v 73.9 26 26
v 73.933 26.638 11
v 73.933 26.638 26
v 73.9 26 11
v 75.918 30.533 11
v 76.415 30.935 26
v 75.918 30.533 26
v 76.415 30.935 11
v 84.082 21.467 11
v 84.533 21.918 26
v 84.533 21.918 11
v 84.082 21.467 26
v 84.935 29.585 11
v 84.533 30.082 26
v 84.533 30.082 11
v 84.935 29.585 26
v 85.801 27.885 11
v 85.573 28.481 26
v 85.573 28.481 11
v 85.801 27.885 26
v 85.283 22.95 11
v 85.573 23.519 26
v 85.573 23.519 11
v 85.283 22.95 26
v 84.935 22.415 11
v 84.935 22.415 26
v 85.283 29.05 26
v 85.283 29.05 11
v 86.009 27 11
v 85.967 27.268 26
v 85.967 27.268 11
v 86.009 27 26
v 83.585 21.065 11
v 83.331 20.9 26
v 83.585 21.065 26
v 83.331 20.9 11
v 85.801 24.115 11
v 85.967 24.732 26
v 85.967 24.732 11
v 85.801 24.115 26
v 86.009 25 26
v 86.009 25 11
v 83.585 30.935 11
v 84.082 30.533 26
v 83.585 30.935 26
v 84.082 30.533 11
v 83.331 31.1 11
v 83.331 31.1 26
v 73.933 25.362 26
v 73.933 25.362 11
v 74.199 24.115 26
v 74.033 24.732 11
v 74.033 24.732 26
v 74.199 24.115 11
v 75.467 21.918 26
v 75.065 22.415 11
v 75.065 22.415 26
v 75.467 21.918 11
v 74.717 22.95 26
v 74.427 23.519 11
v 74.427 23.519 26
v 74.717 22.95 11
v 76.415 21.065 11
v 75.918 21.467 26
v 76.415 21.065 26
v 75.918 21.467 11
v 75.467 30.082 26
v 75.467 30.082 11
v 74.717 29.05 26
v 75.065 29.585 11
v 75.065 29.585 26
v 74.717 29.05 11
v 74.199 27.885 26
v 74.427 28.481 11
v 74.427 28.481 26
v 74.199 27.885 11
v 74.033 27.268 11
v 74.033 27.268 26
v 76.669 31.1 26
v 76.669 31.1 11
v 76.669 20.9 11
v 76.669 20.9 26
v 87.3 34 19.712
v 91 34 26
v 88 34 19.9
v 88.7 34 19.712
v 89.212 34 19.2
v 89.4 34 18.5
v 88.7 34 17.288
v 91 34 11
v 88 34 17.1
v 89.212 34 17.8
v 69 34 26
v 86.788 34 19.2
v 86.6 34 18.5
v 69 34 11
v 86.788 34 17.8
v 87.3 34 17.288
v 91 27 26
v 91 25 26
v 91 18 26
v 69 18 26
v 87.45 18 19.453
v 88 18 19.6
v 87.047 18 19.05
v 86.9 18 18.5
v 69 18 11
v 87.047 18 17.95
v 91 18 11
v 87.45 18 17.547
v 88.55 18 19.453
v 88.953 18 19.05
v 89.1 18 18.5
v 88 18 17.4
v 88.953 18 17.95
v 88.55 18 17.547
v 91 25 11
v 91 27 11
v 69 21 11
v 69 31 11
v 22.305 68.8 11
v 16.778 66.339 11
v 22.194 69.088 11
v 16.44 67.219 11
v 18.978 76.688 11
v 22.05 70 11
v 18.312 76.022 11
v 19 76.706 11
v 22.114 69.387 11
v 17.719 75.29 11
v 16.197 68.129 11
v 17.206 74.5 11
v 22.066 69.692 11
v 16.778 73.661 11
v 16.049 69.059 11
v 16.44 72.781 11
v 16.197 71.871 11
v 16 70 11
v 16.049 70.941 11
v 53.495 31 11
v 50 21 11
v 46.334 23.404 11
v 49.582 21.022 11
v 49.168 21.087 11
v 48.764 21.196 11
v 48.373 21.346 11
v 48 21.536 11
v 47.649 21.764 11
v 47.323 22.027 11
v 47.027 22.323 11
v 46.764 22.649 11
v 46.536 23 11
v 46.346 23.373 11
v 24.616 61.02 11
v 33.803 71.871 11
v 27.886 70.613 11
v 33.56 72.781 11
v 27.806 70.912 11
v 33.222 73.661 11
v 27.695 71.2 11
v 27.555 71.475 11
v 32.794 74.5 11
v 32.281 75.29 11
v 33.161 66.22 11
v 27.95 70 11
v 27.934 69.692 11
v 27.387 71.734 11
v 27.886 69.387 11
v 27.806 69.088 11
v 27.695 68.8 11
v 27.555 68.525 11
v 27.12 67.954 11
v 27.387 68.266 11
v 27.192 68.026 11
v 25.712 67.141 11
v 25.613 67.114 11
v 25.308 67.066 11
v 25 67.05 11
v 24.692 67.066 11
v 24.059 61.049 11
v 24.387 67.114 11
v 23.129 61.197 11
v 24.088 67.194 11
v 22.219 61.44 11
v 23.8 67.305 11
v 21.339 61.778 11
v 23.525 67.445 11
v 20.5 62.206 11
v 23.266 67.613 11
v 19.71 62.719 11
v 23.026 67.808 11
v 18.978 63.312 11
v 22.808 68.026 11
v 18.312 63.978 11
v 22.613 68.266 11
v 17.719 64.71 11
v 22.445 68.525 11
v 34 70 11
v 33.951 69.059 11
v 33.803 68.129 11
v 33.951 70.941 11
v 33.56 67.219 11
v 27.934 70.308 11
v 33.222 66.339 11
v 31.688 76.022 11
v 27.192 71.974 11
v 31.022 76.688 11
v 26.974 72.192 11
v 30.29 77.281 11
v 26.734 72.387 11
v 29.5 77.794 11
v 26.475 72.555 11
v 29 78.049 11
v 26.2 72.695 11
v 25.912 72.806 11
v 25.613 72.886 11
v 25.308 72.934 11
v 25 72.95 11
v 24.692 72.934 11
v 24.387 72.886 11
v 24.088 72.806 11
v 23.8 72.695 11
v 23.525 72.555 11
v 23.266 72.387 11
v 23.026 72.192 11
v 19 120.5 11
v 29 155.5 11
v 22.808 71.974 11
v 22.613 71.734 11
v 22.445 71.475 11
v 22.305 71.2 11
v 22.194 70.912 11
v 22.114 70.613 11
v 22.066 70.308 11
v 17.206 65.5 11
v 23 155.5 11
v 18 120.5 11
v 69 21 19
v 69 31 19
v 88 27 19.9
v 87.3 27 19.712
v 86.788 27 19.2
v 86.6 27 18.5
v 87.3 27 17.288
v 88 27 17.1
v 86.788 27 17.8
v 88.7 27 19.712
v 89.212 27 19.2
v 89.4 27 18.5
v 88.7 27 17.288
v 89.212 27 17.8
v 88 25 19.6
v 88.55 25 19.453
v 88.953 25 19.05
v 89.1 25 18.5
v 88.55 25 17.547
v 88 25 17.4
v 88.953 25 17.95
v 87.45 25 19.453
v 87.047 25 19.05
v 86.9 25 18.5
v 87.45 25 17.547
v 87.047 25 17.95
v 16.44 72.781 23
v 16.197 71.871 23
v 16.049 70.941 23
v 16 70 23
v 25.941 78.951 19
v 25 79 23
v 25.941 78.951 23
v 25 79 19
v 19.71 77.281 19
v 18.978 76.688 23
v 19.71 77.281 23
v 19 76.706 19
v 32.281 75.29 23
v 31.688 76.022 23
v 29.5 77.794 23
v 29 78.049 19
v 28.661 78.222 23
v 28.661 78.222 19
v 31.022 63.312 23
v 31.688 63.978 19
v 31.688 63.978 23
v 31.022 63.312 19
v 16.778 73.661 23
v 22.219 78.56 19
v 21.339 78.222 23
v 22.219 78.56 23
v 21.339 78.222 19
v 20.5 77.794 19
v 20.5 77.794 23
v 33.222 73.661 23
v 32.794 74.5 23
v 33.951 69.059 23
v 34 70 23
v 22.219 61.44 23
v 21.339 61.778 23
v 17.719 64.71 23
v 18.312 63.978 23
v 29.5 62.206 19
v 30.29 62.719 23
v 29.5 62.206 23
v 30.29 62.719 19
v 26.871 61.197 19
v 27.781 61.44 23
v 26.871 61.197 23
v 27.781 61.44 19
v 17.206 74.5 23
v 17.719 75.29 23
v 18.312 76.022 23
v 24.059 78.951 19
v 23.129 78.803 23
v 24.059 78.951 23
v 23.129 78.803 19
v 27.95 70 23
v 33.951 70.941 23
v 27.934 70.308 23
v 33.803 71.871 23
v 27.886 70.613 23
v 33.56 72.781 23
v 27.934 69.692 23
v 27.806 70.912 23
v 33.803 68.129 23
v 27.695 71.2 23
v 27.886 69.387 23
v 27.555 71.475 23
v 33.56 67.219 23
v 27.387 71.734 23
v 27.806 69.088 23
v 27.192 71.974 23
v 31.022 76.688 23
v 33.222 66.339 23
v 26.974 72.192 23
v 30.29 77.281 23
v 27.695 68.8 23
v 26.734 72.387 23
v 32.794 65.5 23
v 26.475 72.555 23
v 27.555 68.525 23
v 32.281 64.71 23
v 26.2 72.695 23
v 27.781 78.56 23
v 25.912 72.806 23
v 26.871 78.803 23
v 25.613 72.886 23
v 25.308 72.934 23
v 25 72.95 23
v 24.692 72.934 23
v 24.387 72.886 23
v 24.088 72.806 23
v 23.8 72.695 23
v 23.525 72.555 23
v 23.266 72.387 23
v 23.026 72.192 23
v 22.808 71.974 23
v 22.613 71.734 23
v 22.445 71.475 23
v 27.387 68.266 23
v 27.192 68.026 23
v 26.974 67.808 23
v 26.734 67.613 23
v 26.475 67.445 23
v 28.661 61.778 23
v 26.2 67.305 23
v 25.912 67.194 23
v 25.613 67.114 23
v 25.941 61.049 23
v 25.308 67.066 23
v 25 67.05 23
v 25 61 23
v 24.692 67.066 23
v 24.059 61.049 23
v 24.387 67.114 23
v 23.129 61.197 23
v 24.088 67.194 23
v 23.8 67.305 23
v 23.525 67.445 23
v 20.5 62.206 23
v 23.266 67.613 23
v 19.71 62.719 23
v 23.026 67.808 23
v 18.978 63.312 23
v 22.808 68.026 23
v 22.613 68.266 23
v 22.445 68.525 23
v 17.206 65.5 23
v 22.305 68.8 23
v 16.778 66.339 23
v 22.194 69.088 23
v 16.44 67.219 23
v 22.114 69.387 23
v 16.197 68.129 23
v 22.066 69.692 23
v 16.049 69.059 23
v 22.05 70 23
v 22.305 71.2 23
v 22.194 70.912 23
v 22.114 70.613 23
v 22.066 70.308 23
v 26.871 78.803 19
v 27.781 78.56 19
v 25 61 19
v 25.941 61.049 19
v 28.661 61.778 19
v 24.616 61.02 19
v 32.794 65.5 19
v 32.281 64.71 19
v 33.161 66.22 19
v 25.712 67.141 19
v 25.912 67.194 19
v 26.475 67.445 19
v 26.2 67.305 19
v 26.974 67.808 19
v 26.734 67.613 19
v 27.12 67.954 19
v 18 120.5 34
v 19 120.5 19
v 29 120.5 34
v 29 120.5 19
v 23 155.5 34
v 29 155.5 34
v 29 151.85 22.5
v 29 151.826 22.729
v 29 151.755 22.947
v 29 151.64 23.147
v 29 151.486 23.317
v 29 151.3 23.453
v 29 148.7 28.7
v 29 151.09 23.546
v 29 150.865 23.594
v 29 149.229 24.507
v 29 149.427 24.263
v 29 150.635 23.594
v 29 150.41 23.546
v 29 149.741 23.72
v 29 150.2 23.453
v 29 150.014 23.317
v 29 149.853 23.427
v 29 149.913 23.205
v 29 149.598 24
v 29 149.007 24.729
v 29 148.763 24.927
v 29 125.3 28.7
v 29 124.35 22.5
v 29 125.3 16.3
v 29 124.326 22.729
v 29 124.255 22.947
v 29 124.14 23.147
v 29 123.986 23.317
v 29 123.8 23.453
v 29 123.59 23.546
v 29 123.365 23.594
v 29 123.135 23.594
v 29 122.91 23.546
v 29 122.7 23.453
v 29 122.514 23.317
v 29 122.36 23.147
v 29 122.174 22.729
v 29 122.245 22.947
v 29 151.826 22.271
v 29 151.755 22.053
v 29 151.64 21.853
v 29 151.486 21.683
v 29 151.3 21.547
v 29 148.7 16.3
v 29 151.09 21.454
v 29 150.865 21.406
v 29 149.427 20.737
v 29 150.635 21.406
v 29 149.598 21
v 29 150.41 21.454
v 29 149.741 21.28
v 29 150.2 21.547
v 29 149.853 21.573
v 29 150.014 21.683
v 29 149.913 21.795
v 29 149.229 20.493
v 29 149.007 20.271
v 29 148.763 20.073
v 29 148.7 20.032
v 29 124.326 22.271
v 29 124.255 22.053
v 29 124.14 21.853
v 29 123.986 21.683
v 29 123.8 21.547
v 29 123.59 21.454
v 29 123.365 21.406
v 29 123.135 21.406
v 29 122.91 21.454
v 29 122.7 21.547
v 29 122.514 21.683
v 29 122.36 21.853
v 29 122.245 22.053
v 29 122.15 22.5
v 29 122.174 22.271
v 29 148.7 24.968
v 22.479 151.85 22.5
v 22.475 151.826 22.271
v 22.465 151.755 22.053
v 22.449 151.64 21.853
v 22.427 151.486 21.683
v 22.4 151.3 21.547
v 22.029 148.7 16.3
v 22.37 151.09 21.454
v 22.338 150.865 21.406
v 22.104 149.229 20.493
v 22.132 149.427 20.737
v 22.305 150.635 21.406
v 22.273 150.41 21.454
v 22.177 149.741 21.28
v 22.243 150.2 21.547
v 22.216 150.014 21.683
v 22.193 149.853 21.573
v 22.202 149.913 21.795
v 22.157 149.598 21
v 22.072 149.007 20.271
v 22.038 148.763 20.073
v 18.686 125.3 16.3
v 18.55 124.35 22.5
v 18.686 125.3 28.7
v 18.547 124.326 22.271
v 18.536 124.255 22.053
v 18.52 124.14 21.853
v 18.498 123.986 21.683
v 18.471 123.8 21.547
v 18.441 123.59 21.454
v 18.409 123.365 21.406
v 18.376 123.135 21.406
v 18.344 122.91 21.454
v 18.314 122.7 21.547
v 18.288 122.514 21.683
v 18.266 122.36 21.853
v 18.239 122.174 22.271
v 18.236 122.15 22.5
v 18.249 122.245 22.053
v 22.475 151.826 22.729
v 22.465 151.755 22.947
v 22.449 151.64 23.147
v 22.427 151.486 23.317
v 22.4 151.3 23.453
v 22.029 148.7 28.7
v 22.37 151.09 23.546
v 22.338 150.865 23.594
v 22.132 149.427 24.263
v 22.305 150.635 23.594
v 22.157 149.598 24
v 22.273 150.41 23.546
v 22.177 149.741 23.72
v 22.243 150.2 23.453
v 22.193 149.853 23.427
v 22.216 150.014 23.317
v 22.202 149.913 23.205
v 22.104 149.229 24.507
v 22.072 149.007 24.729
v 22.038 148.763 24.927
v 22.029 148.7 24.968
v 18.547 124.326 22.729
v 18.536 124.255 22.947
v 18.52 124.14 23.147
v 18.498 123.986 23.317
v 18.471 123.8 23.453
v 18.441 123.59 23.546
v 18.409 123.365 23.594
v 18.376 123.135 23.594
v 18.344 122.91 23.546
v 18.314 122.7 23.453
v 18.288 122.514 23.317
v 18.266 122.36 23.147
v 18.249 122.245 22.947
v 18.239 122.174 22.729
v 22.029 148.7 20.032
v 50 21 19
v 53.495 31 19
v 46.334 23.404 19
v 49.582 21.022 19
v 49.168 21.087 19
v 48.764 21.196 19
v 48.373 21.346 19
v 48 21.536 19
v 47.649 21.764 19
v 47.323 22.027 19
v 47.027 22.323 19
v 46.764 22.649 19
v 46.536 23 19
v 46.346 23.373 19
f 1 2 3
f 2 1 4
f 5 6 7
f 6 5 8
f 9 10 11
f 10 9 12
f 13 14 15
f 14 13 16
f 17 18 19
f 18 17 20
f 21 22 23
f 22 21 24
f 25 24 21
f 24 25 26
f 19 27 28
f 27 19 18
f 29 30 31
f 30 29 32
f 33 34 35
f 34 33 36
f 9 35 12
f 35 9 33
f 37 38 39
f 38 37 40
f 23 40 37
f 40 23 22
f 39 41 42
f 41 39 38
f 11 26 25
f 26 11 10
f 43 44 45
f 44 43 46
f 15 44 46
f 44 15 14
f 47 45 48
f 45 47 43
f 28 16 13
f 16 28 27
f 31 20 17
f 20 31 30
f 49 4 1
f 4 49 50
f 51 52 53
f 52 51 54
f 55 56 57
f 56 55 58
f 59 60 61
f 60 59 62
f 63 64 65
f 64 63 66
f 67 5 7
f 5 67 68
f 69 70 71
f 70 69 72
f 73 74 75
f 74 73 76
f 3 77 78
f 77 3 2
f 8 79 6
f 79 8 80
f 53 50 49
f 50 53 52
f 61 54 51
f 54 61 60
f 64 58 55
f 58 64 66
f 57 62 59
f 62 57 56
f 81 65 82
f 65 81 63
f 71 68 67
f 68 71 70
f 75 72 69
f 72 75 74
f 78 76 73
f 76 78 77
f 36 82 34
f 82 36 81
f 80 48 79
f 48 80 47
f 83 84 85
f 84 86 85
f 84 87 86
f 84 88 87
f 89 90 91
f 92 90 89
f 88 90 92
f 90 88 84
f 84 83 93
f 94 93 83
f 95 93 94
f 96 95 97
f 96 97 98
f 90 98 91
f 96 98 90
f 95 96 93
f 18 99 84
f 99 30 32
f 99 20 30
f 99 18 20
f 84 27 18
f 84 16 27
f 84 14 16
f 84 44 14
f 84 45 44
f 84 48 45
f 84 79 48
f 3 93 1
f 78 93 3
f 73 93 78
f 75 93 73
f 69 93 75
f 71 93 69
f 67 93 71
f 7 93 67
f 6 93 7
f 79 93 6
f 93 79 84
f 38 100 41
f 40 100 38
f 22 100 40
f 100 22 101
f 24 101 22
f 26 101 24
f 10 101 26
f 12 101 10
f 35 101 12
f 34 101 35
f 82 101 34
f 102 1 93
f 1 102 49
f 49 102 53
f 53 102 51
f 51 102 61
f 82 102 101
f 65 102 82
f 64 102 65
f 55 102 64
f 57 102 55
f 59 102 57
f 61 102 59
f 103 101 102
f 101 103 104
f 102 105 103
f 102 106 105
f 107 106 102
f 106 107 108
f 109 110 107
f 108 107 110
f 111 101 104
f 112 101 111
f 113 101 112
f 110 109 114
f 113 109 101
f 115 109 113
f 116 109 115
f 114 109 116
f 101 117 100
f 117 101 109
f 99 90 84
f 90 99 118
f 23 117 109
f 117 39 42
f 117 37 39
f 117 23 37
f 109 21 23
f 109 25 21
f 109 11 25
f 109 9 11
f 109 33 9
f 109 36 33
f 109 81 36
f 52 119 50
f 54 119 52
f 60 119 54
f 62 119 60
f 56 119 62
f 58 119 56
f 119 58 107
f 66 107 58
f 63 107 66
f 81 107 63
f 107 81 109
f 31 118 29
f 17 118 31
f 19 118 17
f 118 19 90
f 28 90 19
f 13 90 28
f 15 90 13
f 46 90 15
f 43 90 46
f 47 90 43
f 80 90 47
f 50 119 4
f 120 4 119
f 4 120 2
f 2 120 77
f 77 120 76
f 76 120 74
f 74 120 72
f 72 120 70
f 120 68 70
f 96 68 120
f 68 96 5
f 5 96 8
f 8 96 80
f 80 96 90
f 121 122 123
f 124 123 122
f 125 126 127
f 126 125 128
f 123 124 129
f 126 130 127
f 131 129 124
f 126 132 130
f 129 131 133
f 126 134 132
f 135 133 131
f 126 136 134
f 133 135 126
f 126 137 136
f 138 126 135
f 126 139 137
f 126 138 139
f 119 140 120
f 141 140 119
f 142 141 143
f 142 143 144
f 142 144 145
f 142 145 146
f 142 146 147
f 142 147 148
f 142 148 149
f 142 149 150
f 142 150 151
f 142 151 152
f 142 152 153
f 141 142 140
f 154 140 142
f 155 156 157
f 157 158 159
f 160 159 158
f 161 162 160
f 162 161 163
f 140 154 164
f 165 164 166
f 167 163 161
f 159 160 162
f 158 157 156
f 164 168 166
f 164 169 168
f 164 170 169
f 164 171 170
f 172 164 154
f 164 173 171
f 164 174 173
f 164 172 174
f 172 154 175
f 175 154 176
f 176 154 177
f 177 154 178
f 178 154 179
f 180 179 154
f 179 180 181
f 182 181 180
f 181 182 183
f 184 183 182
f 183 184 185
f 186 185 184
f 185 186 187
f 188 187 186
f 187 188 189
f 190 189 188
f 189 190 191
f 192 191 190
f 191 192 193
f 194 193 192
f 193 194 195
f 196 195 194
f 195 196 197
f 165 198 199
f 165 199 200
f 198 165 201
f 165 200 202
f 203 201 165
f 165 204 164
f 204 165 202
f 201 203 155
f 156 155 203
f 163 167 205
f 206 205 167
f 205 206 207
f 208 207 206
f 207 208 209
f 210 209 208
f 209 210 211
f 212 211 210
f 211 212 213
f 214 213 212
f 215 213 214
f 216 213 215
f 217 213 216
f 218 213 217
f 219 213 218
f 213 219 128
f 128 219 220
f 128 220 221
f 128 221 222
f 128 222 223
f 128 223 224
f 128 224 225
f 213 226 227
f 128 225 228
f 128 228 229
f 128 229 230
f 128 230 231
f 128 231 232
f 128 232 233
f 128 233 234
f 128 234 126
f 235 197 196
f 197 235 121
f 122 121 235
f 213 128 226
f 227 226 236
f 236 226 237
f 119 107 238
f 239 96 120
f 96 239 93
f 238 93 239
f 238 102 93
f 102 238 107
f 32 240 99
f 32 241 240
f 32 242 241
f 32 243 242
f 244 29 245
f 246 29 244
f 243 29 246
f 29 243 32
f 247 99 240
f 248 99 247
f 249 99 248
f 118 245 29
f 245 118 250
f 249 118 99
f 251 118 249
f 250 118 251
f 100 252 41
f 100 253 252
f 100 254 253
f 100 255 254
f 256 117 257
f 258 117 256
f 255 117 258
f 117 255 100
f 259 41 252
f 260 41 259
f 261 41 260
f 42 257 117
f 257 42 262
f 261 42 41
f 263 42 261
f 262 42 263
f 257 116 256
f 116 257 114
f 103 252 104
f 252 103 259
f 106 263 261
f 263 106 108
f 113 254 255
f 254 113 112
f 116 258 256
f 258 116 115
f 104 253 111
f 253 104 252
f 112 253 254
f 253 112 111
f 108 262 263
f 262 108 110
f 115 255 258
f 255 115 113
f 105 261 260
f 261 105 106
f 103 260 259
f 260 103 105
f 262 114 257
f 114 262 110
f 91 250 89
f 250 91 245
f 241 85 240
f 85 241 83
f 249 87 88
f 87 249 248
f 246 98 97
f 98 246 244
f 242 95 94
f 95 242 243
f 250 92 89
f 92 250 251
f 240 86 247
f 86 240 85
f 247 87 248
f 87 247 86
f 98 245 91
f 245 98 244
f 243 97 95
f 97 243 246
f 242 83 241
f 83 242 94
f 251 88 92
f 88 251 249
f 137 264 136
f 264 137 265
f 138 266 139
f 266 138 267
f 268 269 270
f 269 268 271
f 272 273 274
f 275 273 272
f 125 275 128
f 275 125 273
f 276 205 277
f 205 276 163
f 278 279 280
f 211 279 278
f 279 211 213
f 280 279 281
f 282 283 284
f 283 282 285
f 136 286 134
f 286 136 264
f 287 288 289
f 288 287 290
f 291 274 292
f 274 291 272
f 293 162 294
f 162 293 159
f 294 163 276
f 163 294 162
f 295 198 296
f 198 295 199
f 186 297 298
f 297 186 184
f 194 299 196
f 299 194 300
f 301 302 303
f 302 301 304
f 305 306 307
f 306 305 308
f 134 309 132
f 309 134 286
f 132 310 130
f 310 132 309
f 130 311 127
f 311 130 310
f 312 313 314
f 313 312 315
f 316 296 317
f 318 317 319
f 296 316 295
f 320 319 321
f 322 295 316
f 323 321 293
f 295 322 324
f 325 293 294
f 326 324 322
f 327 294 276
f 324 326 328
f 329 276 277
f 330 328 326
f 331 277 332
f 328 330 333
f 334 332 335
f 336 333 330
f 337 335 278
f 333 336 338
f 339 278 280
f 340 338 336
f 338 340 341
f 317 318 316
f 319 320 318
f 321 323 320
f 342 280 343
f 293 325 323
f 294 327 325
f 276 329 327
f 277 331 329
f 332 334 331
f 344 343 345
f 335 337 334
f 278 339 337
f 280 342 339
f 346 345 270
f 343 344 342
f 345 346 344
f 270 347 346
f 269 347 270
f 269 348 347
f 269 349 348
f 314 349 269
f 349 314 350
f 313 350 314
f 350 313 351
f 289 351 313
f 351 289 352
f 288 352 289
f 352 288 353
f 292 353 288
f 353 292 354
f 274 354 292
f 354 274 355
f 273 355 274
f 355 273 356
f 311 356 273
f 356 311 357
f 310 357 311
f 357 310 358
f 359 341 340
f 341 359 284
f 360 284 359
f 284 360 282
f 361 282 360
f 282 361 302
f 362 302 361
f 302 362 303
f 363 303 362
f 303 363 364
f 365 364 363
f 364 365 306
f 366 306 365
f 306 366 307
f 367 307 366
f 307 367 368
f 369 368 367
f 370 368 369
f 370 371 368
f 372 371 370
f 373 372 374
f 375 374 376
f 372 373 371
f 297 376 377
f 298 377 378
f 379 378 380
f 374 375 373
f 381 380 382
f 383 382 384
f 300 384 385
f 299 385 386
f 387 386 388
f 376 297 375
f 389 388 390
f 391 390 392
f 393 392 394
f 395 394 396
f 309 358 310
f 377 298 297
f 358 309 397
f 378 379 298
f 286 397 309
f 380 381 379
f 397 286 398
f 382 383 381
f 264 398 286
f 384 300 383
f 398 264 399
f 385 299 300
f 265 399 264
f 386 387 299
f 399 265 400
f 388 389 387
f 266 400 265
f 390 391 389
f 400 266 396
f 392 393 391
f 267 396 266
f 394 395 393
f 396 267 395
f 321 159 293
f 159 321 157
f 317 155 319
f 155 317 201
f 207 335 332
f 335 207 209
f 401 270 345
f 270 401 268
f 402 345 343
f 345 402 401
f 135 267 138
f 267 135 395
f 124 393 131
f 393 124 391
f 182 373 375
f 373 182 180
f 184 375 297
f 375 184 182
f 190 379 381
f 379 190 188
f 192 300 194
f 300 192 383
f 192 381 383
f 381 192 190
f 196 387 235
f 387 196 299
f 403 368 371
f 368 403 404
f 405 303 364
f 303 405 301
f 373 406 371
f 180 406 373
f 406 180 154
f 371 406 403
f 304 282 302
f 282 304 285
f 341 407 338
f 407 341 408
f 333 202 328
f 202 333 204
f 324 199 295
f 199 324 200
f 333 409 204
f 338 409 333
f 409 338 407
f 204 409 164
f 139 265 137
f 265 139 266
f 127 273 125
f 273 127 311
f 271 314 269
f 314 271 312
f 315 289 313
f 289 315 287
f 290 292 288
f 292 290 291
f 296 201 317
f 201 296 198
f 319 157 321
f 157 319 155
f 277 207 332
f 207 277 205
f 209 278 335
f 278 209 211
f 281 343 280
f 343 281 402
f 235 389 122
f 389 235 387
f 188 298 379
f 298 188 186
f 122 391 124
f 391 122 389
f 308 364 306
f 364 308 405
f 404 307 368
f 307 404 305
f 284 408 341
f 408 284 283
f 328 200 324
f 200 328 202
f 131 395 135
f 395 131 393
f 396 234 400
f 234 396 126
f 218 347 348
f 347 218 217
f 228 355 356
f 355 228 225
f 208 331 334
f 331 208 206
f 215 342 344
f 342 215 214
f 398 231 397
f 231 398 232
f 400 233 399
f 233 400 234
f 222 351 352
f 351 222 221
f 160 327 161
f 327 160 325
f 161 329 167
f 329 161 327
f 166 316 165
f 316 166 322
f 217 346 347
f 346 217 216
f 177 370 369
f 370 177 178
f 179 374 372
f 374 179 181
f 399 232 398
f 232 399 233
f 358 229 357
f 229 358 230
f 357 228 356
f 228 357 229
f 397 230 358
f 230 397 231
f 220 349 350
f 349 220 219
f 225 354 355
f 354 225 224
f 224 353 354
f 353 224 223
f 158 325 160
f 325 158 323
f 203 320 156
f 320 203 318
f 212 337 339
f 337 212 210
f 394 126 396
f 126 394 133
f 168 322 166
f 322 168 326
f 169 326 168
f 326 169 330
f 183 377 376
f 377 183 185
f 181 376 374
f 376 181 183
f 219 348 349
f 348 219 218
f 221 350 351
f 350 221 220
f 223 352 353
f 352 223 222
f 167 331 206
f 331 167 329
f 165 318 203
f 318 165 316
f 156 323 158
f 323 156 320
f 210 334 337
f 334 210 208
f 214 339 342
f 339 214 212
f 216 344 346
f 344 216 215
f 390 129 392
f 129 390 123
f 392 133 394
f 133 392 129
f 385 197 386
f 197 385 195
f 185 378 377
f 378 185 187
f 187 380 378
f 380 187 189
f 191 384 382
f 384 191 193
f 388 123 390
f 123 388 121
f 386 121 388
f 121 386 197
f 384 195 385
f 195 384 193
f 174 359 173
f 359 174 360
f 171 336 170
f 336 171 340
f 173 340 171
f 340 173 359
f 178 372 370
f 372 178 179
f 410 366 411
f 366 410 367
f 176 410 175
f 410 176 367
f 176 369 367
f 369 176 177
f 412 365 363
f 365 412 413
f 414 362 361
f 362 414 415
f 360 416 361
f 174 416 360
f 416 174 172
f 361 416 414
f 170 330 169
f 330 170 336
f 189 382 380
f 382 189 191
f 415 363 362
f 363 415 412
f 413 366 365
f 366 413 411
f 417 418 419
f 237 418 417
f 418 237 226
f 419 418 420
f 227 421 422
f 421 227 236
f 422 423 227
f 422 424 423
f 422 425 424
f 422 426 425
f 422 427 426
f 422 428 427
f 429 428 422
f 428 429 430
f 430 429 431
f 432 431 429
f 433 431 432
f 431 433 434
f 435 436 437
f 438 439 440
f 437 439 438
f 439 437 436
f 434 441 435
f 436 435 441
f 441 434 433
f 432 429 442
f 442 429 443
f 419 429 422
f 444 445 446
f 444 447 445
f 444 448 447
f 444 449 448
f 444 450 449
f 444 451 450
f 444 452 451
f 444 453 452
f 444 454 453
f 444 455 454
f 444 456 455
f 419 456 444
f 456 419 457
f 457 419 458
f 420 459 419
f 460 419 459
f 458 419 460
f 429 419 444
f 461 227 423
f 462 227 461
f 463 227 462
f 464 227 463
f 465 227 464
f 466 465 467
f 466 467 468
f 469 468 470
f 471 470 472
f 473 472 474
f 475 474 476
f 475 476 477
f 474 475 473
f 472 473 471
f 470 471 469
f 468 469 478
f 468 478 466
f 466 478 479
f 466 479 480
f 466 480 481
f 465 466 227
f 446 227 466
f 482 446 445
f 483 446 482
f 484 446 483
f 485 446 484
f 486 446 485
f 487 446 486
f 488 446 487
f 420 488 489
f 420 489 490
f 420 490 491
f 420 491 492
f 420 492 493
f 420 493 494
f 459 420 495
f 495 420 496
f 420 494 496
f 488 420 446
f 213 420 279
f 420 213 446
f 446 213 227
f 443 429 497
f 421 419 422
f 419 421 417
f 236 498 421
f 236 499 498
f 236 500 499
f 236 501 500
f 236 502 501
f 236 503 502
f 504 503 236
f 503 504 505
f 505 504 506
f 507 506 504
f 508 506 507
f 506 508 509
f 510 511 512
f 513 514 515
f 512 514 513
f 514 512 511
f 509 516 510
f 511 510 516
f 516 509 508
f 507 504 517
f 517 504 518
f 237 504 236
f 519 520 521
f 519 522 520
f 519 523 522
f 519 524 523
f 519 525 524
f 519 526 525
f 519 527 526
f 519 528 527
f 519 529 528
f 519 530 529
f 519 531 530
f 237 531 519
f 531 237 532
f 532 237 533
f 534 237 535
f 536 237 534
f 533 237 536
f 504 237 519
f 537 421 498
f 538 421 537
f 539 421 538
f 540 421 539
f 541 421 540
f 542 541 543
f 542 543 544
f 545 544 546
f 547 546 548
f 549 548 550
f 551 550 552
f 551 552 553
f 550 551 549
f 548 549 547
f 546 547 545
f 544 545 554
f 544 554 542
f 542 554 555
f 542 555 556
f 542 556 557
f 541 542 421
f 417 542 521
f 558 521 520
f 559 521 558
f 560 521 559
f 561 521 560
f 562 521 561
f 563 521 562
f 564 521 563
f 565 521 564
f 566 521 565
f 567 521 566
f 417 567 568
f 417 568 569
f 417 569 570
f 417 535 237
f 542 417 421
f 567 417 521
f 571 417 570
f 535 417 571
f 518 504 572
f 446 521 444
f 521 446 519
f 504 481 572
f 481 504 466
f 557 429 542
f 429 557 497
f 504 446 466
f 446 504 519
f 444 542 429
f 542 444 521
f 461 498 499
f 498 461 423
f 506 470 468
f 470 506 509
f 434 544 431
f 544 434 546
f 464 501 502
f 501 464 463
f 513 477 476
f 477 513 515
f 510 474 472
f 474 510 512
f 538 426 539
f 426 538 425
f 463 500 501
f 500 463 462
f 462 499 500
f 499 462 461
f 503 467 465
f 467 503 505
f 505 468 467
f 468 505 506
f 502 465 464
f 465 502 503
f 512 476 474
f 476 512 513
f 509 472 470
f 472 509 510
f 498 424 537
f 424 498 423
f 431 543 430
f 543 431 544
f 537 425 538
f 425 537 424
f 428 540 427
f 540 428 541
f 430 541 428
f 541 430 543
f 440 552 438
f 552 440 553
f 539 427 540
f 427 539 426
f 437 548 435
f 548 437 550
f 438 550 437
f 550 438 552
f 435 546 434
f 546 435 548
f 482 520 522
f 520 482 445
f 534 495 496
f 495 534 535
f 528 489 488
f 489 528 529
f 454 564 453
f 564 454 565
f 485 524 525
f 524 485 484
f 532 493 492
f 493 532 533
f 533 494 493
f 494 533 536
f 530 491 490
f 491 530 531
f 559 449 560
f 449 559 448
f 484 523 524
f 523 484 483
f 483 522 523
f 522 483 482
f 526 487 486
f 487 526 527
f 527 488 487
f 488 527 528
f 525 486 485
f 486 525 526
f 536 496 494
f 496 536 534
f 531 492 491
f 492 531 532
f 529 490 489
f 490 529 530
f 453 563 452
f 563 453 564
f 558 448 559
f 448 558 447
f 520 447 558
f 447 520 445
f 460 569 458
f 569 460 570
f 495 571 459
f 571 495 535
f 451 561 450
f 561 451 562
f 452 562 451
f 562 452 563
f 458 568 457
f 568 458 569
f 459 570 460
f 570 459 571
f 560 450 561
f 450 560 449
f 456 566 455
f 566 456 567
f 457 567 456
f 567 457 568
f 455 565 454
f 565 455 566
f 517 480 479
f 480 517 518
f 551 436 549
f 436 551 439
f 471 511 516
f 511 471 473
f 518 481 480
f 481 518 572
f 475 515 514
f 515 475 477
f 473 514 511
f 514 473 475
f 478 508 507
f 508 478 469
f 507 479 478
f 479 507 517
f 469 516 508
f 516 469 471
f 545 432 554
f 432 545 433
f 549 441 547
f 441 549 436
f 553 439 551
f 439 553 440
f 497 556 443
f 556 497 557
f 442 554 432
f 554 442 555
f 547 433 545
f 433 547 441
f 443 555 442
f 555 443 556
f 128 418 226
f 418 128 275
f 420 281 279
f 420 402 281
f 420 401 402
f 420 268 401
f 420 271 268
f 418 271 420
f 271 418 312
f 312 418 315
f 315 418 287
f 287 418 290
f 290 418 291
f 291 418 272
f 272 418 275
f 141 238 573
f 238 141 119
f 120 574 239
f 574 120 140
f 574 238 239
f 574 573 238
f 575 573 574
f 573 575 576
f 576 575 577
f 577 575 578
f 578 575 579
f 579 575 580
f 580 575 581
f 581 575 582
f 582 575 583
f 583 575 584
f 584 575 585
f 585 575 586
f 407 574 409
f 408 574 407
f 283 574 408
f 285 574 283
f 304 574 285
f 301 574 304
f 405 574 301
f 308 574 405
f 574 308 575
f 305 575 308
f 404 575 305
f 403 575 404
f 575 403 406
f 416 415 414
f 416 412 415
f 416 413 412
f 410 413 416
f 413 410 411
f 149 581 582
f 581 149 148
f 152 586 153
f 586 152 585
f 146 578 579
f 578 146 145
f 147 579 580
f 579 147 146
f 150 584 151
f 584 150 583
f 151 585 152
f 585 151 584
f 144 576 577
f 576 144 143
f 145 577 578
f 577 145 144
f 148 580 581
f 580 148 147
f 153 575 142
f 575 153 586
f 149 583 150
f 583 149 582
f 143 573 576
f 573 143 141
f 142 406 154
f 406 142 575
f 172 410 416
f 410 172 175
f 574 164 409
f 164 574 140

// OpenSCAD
translate([75,30,17])rotate([-90,0,180])rear();

module rear(){
rotate([90,-90,0])translate([4,5,-6])wheel_bracket();
$fn=60;

translate([4,-2,-1])cube([21,8,10]);
translate([25,6,5])rotate([90,0,0])
cylinder(d=8,h=8);
translate([20.35,-2,1])rotate([0,60,0])
translate([-1.5,0,0])cube([49,8,10]);
difference(){
translate([50,-6,-40])rotate([-90,0,0])
cylinder(d=18,h=12);
translate([50,-10,-40])rotate([-90,0,0])
cylinder(d=5.9,h=20);
}
translate([47,0,-45])
rotate([0,90,0])
{
    translate([-1,-2,-1])cube([47,8,10]);
    translate([62,-5.5,-1])rotate([0,0,0])
    servo_bracket();
}

module wheel_bracket(){
    difference(){
translate([-8,-11,0])cube([16,22,15]);
difference(){
    translate([0,0,-1])cylinder(d=12.2,h=25,$fn=60);
    translate([6.1,0,-1])cube([2,16,40],center=true);
    translate([-6.1,0,-1])cube([2,16,40],center=true);
}
//translate([0,14,-15])rotate([45,0,0])cube(30,center=true);
translate([-1,0,-1])cube([2,22,25]);
translate([-9,8,7.5])rotate([0,90,0])
cylinder(d=2.2,h=21,$fn=12);
translate([-9,8,7.5])rotate([0,90,0])
cylinder(d=2.8,h=10,$fn=12);
}
}
}

module servo_bracket(){
difference(){
union(){
translate([1,0,2.5])cube([35,23,5],center=true);
translate([0,11.5,3])
rotate([90,0,0])linear_extrude(height=23)
polygon([[-16.5,0],[18.5,2],[18.5,3],[-16.5,8]]);
translate([13.75,0,0])cylinder(d=8,h=2,$fn=60);
}
cube([23.4,12.4,50],center=true);
translate([13.75,0,-1])cylinder(d=2.2,h=50,$fn=30);
translate([-13.75,0,-1])cylinder(d=2.2,h=50,$fn=30);
translate([10,0,0])cylinder(d=6,h=12,$fn=60);
}
}
